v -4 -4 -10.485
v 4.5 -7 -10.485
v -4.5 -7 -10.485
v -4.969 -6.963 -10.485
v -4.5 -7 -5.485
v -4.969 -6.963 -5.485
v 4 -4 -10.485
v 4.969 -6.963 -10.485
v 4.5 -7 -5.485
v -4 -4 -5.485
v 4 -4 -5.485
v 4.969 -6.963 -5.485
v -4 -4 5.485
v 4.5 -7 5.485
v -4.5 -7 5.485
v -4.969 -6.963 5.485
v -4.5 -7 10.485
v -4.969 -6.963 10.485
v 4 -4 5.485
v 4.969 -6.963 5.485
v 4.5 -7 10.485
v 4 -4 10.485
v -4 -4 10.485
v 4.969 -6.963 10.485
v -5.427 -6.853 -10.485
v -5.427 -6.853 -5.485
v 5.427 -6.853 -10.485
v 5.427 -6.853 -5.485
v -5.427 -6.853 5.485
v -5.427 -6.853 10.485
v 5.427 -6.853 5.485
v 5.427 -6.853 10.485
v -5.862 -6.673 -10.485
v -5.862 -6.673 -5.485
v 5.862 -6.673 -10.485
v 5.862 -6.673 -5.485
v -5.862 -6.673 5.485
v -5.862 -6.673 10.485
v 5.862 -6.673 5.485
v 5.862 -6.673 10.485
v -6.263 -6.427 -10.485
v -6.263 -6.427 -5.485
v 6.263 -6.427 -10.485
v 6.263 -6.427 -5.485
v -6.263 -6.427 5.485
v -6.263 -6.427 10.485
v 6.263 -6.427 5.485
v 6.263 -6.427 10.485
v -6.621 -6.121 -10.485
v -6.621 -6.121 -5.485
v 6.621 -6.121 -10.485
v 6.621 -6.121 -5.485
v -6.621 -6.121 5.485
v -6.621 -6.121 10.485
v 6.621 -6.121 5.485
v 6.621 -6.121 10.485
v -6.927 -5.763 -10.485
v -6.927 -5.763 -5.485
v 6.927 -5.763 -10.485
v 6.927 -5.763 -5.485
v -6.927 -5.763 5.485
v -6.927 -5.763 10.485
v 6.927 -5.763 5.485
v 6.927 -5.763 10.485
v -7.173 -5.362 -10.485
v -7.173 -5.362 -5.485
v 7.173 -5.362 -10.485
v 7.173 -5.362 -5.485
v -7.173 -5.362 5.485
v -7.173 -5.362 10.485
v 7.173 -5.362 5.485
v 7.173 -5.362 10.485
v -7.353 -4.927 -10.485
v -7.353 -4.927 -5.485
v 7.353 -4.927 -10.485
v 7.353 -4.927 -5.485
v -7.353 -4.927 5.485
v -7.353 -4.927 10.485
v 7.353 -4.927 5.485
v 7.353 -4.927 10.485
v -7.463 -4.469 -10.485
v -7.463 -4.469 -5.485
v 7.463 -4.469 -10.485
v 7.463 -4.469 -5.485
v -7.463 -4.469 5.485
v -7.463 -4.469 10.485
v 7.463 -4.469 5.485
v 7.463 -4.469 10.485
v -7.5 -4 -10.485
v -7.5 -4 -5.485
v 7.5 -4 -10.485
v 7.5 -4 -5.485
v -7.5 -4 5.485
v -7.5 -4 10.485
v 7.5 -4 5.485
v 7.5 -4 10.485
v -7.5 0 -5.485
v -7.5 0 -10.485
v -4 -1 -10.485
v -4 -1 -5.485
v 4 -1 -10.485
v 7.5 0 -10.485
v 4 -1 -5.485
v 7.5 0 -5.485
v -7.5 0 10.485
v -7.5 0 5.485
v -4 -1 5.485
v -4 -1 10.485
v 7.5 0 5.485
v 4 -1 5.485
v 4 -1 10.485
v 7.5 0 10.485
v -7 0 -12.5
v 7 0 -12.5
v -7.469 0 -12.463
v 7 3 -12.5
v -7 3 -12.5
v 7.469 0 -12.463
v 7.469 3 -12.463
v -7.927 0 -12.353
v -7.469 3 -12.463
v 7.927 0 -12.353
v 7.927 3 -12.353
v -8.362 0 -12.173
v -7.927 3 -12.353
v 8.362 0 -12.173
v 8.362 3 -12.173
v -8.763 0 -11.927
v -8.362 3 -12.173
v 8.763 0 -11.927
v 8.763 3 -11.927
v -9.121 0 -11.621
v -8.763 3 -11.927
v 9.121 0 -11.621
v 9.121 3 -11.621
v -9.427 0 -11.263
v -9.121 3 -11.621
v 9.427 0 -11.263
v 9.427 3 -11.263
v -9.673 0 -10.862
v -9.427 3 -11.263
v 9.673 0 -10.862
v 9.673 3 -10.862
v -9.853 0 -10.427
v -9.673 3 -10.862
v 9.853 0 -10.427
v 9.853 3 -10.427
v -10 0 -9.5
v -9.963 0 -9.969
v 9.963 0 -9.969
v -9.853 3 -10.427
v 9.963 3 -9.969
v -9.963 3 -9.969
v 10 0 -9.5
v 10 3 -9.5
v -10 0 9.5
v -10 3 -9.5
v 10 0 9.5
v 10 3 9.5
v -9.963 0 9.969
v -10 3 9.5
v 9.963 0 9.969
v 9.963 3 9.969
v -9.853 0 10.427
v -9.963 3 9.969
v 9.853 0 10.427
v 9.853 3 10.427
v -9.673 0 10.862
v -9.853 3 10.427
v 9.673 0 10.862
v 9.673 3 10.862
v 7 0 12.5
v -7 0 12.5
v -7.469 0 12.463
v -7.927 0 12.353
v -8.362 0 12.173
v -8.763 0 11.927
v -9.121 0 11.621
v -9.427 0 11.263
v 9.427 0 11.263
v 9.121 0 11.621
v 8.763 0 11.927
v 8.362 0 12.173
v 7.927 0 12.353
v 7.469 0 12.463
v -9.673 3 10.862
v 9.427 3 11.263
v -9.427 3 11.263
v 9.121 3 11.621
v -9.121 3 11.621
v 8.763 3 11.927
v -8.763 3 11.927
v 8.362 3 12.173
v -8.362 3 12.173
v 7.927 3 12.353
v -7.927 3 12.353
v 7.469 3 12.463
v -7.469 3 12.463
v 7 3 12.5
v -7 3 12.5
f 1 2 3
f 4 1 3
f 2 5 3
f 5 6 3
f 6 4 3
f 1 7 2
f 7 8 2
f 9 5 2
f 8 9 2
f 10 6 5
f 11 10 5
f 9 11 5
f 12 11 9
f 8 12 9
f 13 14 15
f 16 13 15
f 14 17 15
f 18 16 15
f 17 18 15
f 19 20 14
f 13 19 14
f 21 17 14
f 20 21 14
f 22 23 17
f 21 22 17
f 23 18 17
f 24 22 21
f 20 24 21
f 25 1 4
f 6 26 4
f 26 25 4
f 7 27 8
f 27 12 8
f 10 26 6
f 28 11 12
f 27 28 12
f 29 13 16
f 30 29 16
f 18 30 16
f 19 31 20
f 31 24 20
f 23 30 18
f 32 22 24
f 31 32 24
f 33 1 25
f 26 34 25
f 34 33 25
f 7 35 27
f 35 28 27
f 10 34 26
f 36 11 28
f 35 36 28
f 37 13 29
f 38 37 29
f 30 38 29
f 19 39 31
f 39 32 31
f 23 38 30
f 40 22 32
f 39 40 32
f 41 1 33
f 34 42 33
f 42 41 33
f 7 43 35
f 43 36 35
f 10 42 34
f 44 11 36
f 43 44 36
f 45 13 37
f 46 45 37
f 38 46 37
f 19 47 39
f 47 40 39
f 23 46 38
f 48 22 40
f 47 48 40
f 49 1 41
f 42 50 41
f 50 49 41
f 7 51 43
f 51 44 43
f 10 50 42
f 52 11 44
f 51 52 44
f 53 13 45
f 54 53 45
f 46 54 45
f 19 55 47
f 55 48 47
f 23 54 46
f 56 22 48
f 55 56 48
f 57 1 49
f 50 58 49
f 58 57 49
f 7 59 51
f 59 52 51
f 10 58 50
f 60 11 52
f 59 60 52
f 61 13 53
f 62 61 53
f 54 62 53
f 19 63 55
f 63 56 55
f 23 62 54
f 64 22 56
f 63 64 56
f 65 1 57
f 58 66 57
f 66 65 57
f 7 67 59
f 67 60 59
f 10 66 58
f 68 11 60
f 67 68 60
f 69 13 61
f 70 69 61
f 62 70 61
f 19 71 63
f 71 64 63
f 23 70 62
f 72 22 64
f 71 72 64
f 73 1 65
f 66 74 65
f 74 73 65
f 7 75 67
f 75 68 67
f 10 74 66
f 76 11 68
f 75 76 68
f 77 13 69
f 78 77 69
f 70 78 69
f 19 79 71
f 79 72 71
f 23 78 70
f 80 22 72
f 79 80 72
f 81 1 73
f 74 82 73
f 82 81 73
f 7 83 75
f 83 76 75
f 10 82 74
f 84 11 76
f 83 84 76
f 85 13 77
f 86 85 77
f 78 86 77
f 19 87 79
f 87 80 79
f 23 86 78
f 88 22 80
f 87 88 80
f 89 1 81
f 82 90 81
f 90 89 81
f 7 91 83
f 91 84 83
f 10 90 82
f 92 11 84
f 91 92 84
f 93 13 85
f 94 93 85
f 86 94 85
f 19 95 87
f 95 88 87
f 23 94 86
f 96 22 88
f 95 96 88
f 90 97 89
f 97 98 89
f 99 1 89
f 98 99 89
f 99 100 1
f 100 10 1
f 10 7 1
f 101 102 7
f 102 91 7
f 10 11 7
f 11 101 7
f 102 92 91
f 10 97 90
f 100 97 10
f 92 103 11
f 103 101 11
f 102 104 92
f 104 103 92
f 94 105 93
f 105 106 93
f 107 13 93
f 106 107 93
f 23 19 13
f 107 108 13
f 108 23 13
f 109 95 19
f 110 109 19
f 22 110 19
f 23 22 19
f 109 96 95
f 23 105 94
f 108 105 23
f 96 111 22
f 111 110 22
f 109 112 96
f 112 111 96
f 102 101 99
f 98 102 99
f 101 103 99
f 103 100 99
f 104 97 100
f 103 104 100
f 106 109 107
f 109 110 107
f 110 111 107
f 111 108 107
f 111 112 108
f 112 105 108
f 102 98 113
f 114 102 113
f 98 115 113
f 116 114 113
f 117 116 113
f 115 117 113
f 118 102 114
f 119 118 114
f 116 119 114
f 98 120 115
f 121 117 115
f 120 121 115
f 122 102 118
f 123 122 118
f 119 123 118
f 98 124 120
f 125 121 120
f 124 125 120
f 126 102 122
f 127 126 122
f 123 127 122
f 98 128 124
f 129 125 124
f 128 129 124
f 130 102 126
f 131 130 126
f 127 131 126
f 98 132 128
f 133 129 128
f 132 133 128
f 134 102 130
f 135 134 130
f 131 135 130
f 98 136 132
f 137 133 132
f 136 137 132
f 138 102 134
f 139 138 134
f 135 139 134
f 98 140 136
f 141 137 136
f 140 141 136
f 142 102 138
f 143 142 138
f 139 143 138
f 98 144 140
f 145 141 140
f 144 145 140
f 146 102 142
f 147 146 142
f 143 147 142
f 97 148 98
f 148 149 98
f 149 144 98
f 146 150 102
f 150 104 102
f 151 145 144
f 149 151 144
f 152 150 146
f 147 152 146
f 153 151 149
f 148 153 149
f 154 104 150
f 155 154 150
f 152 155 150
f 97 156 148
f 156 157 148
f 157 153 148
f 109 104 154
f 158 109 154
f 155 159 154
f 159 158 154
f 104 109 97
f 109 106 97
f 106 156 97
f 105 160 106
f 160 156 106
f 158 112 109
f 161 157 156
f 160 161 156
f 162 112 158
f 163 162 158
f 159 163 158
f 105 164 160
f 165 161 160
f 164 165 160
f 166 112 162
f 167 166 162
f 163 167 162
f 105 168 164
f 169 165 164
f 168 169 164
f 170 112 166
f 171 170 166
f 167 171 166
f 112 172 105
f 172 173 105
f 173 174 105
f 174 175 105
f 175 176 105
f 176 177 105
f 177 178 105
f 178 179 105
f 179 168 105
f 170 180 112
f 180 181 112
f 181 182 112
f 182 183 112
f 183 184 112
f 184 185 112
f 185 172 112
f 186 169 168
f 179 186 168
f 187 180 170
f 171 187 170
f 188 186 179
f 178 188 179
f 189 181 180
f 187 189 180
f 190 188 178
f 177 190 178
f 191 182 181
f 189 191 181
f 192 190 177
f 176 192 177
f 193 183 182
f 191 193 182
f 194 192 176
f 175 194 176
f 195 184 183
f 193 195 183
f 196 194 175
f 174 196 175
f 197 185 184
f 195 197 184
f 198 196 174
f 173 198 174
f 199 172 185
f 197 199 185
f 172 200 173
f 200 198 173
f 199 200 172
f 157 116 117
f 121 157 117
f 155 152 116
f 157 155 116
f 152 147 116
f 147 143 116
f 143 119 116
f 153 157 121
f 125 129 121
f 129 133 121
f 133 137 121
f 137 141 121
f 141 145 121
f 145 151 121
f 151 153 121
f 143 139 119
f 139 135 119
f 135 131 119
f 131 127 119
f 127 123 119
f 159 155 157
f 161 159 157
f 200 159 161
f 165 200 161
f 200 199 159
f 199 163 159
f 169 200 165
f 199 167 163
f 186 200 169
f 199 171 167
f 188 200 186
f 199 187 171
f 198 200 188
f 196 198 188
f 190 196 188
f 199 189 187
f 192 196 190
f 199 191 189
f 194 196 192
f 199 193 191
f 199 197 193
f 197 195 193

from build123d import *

# Parameters (mm, degrees)
ESBO_O1_W                = 20
ESBO_O1_H                = 25
RESSALTO_EXTRUS_O1_DEPTH = 3
ESBO_O2_W                = 15
ESBO_O2_H                = 5
RESSALTO_EXTRUS_O2_DEPTH = 7
FILETE3_R                = 3
ESBO_O4_W                = 8
ESBO_O4_H                = 3
CORTE_EXTRUS_O2_DEPTH    = 27.025134469
FILETE4_R                = 3


with BuildPart() as part:
    # Esboço1 → Ressalto-extrusão1 (new body)
    with BuildSketch(Plane(origin=(0, 0, 0), x_dir=(1, 0, 0), z_dir=(0, 1, 0))):
        Rectangle(ESBO_O1_W, ESBO_O1_H)
    extrude(amount=RESSALTO_EXTRUS_O1_DEPTH)

    # Esboço2 → Ressalto-extrusão2 (add)
    with BuildSketch(Plane(origin=(0, 0, 0), x_dir=(-1, 0, 0), z_dir=(0, -1, 0))):
        with Locations((0, 7.984943423)):
            Rectangle(ESBO_O2_W, ESBO_O2_H)
        with Locations((0, -7.984943423)):
            Rectangle(ESBO_O2_W, ESBO_O2_H)
    extrude(amount=RESSALTO_EXTRUS_O2_DEPTH)

    # Filete3
    filete3_edges = [part.edges().sort_by_distance(p)[0] for p in [
        (10, 1.5, 12.5),
        (-10, 1.5, 12.5),
        (-10, 1.5, -12.5),
        (10, 1.5, -12.5),
    ]]
    fillet(filete3_edges, radius=FILETE3_R)

    # Esboço4 → Corte-extrusão2 (cut, through all)
    with BuildSketch(Plane(origin=(0, 0, -10.484943423), x_dir=(-1, 0, 0), z_dir=(0, 0, -1))):
        with Locations((0, -2.5)):
            Rectangle(ESBO_O4_W, ESBO_O4_H)
    extrude(amount=-CORTE_EXTRUS_O2_DEPTH, mode=Mode.SUBTRACT)

    # Filete4
    filete4_edges = [part.edges().sort_by_distance(p)[0] for p in [
        (-7.5, -7, -7.984943423),
        (7.5, -7, -7.984943423),
        (7.5, -7, 7.984943423),
        (-7.5, -7, 7.984943423),
    ]]
    fillet(filete4_edges, radius=FILETE4_R)


solid = part.part
